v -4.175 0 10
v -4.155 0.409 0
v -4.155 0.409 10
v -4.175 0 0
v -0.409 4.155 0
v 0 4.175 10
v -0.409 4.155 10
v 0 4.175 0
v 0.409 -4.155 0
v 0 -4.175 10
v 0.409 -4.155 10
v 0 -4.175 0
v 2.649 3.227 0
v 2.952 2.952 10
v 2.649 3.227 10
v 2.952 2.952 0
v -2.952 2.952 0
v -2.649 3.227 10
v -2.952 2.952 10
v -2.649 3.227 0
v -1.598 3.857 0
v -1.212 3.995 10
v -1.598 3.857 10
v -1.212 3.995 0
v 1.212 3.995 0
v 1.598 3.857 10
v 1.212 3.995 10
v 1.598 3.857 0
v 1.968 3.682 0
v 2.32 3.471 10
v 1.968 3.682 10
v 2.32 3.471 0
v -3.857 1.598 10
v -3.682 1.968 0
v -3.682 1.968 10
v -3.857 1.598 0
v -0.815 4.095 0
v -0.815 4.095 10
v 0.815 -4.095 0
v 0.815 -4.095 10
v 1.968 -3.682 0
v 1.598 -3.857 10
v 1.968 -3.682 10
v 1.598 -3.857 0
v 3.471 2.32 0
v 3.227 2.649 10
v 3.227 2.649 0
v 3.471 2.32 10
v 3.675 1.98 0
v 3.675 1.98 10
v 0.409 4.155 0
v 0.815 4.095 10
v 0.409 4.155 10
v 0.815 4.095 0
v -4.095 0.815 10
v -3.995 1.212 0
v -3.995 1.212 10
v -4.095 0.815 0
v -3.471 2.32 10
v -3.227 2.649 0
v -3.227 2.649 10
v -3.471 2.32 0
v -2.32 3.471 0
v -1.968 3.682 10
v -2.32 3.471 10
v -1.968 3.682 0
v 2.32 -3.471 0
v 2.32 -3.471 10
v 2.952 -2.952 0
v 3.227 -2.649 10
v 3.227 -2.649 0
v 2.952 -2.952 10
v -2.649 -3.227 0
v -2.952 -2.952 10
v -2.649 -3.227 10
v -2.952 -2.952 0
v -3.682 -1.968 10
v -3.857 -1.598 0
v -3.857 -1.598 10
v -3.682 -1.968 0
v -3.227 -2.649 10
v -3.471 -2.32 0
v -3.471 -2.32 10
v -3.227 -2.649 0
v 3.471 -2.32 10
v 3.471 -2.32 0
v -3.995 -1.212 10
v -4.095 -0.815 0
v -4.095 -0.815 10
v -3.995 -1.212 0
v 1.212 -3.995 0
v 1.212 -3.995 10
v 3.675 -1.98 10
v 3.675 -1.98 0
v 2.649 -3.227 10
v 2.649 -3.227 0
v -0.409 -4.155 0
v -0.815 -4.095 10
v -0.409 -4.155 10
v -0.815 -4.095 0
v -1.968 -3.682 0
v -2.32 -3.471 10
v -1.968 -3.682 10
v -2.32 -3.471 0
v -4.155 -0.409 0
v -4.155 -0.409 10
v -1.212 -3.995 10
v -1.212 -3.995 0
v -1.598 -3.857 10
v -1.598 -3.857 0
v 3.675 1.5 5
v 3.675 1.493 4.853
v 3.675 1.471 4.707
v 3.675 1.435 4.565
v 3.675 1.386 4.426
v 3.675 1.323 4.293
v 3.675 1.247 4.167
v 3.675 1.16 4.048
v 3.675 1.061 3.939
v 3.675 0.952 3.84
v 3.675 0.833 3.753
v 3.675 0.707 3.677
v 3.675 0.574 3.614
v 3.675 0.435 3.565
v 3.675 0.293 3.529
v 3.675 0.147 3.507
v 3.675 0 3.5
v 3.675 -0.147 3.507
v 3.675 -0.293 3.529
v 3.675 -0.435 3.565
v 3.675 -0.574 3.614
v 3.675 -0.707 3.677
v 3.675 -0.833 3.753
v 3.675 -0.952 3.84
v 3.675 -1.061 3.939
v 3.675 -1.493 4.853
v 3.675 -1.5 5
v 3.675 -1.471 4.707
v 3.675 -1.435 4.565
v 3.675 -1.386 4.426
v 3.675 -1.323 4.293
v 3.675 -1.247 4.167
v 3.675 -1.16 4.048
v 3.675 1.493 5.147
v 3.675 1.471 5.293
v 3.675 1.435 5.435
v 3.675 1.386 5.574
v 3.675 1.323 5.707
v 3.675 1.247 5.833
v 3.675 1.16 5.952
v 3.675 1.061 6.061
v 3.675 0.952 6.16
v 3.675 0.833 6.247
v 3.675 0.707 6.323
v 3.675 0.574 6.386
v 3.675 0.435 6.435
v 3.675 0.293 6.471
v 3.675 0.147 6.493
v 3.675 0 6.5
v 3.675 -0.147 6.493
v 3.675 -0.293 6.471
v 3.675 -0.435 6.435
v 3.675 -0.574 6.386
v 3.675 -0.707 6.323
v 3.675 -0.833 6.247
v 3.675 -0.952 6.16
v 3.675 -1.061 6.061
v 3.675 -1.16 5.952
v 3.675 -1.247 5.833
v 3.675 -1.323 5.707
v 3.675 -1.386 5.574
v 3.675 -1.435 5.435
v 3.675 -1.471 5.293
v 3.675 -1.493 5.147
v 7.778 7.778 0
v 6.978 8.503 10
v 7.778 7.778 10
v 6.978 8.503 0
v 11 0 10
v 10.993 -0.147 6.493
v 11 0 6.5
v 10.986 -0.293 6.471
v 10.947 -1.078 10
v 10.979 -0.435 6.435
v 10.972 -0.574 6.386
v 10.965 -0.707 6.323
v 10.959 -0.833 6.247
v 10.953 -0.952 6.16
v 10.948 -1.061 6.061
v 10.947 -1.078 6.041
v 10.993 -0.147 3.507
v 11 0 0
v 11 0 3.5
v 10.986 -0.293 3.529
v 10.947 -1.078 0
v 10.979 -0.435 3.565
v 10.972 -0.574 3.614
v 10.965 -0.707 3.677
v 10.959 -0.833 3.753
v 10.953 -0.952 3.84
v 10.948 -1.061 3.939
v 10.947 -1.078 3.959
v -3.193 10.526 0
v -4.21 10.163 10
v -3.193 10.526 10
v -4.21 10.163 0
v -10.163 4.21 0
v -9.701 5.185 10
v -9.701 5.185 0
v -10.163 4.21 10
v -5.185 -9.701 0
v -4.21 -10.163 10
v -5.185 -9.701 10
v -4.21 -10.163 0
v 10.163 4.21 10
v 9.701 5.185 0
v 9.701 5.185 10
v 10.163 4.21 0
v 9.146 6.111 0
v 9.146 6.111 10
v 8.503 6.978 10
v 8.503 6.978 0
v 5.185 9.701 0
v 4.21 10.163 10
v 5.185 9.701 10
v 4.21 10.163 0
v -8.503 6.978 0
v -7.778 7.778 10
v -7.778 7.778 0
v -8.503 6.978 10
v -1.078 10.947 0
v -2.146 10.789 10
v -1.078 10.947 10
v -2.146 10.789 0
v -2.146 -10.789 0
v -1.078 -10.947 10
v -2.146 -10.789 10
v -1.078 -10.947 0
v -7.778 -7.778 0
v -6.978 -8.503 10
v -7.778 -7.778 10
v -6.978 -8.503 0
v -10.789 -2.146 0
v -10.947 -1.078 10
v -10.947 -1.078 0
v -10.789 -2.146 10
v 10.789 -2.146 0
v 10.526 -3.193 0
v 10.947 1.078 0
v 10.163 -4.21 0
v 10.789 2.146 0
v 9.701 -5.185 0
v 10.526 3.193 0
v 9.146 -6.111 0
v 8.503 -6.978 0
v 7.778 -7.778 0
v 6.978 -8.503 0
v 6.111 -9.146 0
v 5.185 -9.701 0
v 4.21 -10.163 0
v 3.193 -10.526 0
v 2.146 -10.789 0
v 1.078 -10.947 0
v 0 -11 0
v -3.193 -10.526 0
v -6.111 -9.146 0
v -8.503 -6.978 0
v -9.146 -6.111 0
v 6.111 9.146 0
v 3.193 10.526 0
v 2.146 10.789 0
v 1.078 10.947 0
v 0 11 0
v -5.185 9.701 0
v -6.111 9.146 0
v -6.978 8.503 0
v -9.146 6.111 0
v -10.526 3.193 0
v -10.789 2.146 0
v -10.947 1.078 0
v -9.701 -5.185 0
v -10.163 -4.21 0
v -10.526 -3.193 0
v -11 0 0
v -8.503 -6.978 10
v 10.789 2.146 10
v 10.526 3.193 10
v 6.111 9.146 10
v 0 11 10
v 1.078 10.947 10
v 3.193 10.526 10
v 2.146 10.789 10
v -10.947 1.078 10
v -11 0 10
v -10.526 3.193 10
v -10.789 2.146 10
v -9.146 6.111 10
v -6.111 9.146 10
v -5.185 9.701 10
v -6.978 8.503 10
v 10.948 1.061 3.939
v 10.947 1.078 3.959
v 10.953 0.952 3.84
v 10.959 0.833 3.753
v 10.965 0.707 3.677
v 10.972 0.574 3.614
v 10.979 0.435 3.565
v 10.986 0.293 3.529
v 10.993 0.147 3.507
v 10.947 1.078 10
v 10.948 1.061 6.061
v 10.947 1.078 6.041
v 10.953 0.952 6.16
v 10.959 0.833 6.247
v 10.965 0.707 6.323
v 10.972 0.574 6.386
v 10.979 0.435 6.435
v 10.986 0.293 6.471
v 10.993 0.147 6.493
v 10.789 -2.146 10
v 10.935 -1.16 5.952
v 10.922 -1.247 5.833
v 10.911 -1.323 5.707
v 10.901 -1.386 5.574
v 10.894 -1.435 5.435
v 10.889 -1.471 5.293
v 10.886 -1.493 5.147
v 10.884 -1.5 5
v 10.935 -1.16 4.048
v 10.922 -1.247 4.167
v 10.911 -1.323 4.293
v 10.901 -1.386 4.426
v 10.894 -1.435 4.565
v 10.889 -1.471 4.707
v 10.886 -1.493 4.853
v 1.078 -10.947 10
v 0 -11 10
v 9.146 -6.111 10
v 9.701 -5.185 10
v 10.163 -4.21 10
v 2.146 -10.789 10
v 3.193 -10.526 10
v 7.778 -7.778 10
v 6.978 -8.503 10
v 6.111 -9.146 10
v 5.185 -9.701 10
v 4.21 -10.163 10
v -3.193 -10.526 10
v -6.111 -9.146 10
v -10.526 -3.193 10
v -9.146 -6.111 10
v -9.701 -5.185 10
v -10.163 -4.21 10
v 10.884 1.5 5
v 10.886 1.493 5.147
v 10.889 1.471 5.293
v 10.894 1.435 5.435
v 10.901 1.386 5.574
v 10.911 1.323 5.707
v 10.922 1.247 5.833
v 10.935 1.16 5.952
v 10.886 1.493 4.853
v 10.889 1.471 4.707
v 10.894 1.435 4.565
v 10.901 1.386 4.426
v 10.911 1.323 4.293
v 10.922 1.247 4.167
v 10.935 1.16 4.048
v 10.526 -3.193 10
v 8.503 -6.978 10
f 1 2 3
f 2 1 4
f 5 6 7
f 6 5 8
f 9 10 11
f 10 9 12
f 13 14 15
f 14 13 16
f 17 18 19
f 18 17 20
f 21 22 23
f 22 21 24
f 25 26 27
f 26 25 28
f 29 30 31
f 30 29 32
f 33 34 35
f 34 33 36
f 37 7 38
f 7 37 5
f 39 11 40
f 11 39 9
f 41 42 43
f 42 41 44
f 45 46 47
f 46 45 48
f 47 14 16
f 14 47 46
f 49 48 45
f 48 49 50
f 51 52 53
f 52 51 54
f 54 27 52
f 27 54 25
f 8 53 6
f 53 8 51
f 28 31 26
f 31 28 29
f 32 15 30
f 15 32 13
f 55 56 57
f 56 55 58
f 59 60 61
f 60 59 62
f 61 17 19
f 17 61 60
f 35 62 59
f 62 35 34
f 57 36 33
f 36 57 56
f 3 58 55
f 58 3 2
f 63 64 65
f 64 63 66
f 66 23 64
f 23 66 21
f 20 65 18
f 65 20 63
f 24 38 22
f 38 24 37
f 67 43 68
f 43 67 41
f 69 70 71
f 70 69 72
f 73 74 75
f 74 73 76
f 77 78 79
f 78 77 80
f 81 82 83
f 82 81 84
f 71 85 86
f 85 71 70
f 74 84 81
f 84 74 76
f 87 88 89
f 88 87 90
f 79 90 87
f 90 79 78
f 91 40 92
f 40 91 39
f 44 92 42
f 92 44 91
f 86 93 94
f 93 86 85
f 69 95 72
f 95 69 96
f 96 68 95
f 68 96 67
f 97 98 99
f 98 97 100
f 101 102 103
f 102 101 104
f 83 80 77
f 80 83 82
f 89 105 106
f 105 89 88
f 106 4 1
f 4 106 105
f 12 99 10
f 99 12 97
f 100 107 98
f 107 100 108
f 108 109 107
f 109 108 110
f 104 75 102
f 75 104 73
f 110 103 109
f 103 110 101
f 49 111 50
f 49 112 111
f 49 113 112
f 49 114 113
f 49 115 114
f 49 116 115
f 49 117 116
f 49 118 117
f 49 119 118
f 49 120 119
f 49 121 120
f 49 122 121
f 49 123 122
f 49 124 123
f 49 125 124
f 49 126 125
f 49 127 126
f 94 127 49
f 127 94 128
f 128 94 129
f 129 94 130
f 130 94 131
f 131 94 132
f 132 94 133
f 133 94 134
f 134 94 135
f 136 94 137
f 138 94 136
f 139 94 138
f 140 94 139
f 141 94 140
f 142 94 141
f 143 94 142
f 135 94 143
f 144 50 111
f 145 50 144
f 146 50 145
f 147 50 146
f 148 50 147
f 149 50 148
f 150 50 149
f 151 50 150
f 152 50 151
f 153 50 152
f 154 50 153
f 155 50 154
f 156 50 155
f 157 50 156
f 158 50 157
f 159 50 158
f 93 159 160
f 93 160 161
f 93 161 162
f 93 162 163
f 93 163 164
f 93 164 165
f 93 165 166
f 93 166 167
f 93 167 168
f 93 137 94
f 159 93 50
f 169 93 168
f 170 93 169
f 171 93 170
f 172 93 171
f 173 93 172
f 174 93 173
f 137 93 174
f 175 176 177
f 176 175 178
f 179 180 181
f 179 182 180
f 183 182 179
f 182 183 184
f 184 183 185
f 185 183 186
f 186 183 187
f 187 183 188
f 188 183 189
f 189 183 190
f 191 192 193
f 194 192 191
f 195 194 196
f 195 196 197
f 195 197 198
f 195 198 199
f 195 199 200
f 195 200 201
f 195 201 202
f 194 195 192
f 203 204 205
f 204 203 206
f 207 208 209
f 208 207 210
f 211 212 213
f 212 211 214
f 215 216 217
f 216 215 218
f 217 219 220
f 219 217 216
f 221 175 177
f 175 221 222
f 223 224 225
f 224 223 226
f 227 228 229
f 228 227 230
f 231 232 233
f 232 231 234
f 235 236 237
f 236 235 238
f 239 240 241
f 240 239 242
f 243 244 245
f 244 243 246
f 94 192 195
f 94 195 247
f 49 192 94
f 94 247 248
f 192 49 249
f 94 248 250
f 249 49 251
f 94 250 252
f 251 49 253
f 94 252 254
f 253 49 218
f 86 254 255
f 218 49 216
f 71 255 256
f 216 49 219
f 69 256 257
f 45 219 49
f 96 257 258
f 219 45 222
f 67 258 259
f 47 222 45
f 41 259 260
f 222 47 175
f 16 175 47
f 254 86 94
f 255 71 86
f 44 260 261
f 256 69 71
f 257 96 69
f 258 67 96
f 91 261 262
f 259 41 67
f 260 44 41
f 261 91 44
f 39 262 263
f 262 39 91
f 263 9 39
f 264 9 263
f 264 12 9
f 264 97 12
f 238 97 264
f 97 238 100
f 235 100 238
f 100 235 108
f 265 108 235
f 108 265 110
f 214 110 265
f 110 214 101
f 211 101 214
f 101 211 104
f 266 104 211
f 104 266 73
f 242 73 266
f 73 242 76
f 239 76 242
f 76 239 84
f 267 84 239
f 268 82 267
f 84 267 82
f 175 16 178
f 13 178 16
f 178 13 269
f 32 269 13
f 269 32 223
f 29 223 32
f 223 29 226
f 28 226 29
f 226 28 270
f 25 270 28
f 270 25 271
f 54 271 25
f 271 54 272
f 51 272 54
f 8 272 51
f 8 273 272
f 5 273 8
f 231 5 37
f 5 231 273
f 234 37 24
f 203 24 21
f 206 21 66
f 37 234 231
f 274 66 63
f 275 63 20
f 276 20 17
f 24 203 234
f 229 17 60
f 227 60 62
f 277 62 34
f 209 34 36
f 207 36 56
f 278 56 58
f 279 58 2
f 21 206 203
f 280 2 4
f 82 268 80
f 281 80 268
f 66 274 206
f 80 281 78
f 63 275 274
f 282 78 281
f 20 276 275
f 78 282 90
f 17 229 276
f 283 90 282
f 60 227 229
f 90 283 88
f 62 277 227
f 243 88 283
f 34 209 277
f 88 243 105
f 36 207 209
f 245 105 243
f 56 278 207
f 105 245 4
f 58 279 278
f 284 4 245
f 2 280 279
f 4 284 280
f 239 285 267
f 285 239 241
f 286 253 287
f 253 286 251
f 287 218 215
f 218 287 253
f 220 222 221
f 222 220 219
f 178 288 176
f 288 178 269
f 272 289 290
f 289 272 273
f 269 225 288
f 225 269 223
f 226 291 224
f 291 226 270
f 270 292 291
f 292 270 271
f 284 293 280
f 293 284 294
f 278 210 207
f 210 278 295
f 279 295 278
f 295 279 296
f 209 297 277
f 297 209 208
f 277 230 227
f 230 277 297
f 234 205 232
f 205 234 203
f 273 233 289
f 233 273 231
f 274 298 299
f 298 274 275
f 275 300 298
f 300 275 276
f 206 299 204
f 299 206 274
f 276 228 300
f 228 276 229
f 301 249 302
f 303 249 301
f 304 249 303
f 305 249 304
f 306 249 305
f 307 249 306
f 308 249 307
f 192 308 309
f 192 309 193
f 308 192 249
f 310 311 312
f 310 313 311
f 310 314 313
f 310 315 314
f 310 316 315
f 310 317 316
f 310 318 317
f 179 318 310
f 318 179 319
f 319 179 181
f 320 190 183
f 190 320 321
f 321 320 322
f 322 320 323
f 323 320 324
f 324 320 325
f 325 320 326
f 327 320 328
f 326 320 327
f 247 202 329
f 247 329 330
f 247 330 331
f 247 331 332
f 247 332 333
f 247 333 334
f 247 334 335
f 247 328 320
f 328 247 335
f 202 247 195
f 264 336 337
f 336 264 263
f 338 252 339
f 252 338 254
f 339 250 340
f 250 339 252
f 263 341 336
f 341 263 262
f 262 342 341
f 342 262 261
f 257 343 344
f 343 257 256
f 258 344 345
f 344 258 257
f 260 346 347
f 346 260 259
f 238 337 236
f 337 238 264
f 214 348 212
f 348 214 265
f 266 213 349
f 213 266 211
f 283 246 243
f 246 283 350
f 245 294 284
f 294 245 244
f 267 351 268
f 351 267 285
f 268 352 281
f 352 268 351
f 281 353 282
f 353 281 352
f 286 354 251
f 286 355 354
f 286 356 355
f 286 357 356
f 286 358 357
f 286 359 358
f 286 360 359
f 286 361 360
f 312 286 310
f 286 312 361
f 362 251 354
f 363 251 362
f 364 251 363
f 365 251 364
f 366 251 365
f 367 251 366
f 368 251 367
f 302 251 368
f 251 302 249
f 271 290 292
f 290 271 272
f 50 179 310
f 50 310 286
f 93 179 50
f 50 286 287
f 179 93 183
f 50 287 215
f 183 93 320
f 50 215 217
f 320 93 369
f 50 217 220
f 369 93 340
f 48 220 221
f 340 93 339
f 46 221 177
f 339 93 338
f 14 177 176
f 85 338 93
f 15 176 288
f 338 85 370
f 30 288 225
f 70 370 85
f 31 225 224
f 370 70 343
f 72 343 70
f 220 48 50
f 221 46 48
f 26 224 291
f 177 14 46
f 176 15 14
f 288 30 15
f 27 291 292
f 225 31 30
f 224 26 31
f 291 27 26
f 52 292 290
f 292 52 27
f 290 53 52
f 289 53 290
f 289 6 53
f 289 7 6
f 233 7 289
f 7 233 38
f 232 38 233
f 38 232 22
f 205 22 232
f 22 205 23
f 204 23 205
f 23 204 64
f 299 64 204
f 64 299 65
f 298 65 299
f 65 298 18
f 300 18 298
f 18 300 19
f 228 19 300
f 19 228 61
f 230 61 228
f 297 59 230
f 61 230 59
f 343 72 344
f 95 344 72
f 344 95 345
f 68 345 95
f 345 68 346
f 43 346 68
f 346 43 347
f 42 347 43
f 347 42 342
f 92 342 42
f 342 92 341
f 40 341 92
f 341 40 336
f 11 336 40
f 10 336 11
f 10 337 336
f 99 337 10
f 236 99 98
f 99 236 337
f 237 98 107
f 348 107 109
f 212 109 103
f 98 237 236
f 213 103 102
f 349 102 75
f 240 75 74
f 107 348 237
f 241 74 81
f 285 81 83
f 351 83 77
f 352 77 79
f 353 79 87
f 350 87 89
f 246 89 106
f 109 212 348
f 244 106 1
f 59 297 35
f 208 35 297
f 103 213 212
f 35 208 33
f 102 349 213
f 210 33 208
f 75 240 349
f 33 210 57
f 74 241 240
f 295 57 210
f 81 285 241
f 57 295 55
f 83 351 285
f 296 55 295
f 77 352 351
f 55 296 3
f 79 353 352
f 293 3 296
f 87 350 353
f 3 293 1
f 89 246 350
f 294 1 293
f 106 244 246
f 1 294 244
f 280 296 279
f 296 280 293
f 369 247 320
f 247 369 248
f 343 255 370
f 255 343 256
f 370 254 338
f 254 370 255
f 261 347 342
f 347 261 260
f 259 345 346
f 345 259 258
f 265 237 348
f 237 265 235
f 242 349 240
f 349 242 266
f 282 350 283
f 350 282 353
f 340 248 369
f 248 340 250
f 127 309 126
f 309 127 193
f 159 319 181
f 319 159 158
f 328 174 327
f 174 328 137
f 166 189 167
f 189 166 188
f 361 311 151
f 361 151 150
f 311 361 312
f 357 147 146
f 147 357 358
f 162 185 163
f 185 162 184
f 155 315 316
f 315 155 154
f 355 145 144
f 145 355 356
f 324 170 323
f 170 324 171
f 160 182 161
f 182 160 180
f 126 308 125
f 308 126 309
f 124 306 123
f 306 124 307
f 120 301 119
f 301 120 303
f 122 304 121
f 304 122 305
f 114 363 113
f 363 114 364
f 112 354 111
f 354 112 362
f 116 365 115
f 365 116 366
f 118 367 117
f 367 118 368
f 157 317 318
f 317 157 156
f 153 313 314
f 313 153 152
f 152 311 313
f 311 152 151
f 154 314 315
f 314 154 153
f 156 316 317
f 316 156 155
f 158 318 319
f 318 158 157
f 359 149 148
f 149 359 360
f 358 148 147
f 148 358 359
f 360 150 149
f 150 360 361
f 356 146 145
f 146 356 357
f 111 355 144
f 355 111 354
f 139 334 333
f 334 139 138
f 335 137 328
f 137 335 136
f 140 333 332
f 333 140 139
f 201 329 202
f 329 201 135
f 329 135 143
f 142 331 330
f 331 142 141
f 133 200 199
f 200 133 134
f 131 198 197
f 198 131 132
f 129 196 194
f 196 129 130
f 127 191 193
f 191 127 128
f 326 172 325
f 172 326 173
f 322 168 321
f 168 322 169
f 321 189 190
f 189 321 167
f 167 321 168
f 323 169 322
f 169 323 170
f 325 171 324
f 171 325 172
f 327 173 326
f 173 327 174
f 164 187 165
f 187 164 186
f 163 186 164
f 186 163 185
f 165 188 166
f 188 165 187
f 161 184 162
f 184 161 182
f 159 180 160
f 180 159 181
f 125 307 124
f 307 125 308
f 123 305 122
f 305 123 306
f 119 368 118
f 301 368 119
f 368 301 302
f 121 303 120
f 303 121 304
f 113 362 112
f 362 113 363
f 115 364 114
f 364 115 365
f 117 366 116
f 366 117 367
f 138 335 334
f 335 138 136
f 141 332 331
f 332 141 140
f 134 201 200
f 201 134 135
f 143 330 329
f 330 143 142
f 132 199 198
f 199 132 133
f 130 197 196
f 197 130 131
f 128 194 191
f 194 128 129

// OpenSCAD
// Gen-CT — shaft collar with D-flat bore (set screw bears on the flat); print x4
include <parameters.scad>;
$fn = 64;
// D-flat keyed bore: flat faces +X (angle 0 = magnet pocket 0 = index notch)
module dflat_bore(h) {
    intersection() {
        cylinder(d=shaft_bore, h=h);
        translate([-shaft_bore, -shaft_bore, 0]) cube([shaft_bore + dflat_x, 2*shaft_bore, h]);
    }
}

od = 22; h = collar_h; set_d = 3.0;
difference() {
    cylinder(d=od, h=h);
    translate([0, 0, -0.1]) dflat_bore(h + 0.2);
    translate([0, 0, h/2]) rotate([0, 90, 0]) cylinder(d=set_d, h=od);
}
